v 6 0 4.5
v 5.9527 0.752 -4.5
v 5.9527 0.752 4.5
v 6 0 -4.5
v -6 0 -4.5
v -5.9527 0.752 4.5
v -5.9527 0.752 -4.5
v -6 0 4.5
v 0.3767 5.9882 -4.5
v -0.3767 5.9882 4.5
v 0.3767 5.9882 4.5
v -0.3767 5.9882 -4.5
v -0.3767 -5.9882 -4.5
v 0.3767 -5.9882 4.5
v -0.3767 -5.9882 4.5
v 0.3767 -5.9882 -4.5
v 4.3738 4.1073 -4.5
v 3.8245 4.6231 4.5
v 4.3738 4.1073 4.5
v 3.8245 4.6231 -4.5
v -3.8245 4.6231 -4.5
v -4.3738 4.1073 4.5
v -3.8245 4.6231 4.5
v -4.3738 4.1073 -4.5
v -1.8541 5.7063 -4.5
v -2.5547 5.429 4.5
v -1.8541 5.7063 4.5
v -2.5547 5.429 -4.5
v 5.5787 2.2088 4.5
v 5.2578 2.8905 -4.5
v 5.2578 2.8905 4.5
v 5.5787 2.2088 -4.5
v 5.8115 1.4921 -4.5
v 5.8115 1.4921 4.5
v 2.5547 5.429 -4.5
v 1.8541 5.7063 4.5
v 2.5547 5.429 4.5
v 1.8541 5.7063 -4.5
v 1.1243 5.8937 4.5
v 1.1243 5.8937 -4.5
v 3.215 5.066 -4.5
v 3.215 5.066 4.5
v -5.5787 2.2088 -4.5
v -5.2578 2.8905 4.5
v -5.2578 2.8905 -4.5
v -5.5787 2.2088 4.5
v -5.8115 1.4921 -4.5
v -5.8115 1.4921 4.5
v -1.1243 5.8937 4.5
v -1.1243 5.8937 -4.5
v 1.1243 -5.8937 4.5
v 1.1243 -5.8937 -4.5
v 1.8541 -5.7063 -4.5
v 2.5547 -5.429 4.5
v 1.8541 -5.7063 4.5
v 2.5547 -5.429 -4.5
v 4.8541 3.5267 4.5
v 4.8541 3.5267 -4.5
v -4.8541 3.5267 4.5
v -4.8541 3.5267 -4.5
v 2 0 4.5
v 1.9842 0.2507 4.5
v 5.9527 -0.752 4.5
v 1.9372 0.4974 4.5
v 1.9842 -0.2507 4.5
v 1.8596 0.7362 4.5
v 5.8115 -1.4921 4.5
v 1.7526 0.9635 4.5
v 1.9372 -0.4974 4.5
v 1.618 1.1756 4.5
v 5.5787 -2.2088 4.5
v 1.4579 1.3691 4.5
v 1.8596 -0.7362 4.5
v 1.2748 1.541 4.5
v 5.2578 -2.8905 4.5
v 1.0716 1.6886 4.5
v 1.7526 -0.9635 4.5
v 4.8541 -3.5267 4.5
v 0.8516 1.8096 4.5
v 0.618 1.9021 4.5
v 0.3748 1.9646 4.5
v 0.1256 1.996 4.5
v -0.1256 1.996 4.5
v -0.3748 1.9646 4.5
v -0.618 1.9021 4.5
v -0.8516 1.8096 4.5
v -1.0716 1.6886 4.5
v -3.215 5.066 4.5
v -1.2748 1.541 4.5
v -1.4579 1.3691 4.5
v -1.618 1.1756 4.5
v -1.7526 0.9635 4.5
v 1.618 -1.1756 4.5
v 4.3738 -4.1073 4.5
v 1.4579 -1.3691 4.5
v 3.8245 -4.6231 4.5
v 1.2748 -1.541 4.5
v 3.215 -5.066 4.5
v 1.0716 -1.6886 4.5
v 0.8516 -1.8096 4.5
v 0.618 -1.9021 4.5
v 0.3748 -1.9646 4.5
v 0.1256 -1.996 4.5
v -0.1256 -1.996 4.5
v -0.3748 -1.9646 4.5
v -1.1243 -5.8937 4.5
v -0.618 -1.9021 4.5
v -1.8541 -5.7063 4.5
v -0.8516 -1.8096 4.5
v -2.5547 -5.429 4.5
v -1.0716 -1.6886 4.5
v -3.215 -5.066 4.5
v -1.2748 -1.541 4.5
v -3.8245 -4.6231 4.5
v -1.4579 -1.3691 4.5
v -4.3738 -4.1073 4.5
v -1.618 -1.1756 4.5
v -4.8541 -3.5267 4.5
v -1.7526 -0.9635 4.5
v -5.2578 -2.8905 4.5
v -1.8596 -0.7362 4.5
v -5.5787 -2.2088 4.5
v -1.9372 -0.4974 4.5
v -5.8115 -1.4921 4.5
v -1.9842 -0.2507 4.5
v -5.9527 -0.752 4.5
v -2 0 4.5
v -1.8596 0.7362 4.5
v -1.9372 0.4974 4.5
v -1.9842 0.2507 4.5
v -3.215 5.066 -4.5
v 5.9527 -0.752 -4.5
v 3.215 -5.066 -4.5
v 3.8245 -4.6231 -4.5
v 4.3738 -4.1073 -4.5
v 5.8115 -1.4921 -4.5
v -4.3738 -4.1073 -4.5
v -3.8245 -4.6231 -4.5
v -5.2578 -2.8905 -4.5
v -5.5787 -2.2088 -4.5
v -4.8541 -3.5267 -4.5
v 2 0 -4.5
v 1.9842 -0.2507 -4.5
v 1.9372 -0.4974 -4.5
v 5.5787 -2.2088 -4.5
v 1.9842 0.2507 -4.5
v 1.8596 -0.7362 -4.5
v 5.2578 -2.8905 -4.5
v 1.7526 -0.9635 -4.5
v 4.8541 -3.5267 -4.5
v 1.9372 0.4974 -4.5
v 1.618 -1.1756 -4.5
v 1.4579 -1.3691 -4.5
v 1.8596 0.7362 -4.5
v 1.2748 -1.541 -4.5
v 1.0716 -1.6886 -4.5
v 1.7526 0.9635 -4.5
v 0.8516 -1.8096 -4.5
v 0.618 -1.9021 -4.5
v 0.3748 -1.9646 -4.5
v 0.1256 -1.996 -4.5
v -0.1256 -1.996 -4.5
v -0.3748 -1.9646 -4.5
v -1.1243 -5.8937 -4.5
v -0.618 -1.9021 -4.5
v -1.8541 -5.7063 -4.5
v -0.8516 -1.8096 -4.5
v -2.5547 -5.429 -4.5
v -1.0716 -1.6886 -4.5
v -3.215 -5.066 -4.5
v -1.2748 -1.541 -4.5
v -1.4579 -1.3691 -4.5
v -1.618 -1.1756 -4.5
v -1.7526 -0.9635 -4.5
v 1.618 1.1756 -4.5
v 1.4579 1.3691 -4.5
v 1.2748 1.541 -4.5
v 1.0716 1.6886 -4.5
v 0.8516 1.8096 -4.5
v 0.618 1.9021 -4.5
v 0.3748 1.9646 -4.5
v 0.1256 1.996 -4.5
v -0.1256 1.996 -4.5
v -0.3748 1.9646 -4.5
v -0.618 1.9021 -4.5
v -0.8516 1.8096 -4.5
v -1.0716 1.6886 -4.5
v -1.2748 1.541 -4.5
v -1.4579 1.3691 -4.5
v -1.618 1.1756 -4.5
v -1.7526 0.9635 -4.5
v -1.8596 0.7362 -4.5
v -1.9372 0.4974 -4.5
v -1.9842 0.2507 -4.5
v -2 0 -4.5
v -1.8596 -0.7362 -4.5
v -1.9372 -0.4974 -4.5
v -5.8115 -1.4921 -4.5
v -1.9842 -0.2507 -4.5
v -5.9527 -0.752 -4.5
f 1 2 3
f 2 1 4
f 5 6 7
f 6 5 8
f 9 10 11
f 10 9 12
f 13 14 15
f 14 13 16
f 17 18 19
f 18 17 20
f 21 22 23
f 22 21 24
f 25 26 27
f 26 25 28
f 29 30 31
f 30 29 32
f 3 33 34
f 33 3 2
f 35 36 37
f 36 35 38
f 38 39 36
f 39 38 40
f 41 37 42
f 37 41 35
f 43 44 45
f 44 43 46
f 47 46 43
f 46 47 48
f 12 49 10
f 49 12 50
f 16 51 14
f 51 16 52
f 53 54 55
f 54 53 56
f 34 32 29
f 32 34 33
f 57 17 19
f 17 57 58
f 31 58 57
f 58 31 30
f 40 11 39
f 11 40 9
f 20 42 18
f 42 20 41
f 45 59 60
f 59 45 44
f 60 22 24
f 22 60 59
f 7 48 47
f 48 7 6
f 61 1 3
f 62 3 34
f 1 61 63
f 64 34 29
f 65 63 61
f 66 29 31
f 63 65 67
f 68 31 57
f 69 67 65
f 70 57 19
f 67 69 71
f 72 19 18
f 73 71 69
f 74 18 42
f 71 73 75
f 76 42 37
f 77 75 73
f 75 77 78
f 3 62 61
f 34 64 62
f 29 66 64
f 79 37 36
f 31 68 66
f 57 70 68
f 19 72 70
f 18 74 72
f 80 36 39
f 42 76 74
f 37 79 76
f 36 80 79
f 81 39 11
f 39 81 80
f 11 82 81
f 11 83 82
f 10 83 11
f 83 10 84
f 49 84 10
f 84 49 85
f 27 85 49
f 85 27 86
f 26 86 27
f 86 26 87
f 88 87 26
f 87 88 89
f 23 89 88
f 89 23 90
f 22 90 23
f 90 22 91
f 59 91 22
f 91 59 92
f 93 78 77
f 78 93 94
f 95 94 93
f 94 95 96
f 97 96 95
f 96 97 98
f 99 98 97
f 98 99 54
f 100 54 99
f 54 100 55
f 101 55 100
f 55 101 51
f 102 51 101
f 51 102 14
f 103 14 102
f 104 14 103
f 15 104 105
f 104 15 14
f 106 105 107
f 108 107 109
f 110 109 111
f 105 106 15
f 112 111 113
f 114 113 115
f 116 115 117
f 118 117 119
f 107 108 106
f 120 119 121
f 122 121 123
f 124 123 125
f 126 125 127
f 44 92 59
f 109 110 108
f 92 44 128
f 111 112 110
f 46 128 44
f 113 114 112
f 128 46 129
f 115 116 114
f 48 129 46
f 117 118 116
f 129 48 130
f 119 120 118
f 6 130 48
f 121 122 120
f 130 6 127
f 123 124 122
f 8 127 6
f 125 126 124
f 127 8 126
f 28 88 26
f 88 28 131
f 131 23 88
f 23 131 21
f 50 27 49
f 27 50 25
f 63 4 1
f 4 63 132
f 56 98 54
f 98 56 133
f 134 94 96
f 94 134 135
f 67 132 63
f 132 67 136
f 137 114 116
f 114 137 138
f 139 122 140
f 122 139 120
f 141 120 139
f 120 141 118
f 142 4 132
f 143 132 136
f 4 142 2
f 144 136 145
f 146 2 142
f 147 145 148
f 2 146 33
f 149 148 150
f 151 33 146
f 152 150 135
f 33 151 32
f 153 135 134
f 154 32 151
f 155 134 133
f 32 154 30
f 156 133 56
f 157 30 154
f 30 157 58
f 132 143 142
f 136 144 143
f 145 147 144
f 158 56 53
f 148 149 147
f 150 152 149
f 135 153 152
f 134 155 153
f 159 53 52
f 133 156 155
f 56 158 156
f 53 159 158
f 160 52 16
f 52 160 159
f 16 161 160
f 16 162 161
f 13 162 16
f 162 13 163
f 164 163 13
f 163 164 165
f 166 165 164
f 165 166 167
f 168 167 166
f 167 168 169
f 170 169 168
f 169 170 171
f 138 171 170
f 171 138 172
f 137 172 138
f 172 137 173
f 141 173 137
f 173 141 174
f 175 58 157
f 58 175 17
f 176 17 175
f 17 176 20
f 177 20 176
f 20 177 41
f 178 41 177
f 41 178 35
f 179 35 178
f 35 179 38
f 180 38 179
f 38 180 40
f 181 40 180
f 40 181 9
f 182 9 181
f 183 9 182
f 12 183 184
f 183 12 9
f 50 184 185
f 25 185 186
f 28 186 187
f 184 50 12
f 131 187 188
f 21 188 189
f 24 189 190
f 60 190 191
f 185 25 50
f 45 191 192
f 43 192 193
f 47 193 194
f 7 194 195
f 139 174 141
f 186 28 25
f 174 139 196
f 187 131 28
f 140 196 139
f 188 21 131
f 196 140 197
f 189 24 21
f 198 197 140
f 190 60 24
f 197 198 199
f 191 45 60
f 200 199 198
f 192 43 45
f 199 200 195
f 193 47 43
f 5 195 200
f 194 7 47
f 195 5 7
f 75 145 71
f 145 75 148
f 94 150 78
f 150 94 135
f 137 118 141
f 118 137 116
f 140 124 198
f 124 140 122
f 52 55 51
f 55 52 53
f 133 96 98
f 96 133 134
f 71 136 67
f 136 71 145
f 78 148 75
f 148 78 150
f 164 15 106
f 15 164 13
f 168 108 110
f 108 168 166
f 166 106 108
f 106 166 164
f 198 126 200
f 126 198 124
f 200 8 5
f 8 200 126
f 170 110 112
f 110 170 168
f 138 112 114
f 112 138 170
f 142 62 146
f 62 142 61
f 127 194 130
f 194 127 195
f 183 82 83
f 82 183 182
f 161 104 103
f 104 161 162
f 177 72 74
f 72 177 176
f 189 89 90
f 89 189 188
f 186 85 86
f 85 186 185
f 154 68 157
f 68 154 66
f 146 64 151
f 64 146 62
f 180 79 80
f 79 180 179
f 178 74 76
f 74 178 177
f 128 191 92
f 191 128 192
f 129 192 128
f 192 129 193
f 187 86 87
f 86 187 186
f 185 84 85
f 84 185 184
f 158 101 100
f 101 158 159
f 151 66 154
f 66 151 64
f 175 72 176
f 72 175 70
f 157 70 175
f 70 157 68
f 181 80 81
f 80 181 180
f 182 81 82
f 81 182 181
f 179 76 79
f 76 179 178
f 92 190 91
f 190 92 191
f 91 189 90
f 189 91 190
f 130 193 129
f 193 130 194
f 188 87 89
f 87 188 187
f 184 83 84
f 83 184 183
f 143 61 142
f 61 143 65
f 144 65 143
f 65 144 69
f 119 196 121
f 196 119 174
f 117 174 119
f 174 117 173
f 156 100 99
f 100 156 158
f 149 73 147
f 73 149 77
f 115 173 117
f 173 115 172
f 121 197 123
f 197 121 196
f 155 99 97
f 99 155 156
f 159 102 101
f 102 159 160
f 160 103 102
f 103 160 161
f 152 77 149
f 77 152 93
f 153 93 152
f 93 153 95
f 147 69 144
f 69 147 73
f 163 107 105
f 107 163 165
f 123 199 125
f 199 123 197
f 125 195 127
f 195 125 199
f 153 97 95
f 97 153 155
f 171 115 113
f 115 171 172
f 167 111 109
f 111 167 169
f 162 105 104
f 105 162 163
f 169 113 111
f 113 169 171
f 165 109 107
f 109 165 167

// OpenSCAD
$fn = 50;


difference() {
	union() {
		translate(v = [0, 0, -4.5000000000]) {
			cylinder(h = 9, r = 6.0000000000);
		}
	}
	union() {
		translate(v = [0, 0, -100.0000000000]) {
			cylinder(h = 200, r = 2);
		}
	}
}
